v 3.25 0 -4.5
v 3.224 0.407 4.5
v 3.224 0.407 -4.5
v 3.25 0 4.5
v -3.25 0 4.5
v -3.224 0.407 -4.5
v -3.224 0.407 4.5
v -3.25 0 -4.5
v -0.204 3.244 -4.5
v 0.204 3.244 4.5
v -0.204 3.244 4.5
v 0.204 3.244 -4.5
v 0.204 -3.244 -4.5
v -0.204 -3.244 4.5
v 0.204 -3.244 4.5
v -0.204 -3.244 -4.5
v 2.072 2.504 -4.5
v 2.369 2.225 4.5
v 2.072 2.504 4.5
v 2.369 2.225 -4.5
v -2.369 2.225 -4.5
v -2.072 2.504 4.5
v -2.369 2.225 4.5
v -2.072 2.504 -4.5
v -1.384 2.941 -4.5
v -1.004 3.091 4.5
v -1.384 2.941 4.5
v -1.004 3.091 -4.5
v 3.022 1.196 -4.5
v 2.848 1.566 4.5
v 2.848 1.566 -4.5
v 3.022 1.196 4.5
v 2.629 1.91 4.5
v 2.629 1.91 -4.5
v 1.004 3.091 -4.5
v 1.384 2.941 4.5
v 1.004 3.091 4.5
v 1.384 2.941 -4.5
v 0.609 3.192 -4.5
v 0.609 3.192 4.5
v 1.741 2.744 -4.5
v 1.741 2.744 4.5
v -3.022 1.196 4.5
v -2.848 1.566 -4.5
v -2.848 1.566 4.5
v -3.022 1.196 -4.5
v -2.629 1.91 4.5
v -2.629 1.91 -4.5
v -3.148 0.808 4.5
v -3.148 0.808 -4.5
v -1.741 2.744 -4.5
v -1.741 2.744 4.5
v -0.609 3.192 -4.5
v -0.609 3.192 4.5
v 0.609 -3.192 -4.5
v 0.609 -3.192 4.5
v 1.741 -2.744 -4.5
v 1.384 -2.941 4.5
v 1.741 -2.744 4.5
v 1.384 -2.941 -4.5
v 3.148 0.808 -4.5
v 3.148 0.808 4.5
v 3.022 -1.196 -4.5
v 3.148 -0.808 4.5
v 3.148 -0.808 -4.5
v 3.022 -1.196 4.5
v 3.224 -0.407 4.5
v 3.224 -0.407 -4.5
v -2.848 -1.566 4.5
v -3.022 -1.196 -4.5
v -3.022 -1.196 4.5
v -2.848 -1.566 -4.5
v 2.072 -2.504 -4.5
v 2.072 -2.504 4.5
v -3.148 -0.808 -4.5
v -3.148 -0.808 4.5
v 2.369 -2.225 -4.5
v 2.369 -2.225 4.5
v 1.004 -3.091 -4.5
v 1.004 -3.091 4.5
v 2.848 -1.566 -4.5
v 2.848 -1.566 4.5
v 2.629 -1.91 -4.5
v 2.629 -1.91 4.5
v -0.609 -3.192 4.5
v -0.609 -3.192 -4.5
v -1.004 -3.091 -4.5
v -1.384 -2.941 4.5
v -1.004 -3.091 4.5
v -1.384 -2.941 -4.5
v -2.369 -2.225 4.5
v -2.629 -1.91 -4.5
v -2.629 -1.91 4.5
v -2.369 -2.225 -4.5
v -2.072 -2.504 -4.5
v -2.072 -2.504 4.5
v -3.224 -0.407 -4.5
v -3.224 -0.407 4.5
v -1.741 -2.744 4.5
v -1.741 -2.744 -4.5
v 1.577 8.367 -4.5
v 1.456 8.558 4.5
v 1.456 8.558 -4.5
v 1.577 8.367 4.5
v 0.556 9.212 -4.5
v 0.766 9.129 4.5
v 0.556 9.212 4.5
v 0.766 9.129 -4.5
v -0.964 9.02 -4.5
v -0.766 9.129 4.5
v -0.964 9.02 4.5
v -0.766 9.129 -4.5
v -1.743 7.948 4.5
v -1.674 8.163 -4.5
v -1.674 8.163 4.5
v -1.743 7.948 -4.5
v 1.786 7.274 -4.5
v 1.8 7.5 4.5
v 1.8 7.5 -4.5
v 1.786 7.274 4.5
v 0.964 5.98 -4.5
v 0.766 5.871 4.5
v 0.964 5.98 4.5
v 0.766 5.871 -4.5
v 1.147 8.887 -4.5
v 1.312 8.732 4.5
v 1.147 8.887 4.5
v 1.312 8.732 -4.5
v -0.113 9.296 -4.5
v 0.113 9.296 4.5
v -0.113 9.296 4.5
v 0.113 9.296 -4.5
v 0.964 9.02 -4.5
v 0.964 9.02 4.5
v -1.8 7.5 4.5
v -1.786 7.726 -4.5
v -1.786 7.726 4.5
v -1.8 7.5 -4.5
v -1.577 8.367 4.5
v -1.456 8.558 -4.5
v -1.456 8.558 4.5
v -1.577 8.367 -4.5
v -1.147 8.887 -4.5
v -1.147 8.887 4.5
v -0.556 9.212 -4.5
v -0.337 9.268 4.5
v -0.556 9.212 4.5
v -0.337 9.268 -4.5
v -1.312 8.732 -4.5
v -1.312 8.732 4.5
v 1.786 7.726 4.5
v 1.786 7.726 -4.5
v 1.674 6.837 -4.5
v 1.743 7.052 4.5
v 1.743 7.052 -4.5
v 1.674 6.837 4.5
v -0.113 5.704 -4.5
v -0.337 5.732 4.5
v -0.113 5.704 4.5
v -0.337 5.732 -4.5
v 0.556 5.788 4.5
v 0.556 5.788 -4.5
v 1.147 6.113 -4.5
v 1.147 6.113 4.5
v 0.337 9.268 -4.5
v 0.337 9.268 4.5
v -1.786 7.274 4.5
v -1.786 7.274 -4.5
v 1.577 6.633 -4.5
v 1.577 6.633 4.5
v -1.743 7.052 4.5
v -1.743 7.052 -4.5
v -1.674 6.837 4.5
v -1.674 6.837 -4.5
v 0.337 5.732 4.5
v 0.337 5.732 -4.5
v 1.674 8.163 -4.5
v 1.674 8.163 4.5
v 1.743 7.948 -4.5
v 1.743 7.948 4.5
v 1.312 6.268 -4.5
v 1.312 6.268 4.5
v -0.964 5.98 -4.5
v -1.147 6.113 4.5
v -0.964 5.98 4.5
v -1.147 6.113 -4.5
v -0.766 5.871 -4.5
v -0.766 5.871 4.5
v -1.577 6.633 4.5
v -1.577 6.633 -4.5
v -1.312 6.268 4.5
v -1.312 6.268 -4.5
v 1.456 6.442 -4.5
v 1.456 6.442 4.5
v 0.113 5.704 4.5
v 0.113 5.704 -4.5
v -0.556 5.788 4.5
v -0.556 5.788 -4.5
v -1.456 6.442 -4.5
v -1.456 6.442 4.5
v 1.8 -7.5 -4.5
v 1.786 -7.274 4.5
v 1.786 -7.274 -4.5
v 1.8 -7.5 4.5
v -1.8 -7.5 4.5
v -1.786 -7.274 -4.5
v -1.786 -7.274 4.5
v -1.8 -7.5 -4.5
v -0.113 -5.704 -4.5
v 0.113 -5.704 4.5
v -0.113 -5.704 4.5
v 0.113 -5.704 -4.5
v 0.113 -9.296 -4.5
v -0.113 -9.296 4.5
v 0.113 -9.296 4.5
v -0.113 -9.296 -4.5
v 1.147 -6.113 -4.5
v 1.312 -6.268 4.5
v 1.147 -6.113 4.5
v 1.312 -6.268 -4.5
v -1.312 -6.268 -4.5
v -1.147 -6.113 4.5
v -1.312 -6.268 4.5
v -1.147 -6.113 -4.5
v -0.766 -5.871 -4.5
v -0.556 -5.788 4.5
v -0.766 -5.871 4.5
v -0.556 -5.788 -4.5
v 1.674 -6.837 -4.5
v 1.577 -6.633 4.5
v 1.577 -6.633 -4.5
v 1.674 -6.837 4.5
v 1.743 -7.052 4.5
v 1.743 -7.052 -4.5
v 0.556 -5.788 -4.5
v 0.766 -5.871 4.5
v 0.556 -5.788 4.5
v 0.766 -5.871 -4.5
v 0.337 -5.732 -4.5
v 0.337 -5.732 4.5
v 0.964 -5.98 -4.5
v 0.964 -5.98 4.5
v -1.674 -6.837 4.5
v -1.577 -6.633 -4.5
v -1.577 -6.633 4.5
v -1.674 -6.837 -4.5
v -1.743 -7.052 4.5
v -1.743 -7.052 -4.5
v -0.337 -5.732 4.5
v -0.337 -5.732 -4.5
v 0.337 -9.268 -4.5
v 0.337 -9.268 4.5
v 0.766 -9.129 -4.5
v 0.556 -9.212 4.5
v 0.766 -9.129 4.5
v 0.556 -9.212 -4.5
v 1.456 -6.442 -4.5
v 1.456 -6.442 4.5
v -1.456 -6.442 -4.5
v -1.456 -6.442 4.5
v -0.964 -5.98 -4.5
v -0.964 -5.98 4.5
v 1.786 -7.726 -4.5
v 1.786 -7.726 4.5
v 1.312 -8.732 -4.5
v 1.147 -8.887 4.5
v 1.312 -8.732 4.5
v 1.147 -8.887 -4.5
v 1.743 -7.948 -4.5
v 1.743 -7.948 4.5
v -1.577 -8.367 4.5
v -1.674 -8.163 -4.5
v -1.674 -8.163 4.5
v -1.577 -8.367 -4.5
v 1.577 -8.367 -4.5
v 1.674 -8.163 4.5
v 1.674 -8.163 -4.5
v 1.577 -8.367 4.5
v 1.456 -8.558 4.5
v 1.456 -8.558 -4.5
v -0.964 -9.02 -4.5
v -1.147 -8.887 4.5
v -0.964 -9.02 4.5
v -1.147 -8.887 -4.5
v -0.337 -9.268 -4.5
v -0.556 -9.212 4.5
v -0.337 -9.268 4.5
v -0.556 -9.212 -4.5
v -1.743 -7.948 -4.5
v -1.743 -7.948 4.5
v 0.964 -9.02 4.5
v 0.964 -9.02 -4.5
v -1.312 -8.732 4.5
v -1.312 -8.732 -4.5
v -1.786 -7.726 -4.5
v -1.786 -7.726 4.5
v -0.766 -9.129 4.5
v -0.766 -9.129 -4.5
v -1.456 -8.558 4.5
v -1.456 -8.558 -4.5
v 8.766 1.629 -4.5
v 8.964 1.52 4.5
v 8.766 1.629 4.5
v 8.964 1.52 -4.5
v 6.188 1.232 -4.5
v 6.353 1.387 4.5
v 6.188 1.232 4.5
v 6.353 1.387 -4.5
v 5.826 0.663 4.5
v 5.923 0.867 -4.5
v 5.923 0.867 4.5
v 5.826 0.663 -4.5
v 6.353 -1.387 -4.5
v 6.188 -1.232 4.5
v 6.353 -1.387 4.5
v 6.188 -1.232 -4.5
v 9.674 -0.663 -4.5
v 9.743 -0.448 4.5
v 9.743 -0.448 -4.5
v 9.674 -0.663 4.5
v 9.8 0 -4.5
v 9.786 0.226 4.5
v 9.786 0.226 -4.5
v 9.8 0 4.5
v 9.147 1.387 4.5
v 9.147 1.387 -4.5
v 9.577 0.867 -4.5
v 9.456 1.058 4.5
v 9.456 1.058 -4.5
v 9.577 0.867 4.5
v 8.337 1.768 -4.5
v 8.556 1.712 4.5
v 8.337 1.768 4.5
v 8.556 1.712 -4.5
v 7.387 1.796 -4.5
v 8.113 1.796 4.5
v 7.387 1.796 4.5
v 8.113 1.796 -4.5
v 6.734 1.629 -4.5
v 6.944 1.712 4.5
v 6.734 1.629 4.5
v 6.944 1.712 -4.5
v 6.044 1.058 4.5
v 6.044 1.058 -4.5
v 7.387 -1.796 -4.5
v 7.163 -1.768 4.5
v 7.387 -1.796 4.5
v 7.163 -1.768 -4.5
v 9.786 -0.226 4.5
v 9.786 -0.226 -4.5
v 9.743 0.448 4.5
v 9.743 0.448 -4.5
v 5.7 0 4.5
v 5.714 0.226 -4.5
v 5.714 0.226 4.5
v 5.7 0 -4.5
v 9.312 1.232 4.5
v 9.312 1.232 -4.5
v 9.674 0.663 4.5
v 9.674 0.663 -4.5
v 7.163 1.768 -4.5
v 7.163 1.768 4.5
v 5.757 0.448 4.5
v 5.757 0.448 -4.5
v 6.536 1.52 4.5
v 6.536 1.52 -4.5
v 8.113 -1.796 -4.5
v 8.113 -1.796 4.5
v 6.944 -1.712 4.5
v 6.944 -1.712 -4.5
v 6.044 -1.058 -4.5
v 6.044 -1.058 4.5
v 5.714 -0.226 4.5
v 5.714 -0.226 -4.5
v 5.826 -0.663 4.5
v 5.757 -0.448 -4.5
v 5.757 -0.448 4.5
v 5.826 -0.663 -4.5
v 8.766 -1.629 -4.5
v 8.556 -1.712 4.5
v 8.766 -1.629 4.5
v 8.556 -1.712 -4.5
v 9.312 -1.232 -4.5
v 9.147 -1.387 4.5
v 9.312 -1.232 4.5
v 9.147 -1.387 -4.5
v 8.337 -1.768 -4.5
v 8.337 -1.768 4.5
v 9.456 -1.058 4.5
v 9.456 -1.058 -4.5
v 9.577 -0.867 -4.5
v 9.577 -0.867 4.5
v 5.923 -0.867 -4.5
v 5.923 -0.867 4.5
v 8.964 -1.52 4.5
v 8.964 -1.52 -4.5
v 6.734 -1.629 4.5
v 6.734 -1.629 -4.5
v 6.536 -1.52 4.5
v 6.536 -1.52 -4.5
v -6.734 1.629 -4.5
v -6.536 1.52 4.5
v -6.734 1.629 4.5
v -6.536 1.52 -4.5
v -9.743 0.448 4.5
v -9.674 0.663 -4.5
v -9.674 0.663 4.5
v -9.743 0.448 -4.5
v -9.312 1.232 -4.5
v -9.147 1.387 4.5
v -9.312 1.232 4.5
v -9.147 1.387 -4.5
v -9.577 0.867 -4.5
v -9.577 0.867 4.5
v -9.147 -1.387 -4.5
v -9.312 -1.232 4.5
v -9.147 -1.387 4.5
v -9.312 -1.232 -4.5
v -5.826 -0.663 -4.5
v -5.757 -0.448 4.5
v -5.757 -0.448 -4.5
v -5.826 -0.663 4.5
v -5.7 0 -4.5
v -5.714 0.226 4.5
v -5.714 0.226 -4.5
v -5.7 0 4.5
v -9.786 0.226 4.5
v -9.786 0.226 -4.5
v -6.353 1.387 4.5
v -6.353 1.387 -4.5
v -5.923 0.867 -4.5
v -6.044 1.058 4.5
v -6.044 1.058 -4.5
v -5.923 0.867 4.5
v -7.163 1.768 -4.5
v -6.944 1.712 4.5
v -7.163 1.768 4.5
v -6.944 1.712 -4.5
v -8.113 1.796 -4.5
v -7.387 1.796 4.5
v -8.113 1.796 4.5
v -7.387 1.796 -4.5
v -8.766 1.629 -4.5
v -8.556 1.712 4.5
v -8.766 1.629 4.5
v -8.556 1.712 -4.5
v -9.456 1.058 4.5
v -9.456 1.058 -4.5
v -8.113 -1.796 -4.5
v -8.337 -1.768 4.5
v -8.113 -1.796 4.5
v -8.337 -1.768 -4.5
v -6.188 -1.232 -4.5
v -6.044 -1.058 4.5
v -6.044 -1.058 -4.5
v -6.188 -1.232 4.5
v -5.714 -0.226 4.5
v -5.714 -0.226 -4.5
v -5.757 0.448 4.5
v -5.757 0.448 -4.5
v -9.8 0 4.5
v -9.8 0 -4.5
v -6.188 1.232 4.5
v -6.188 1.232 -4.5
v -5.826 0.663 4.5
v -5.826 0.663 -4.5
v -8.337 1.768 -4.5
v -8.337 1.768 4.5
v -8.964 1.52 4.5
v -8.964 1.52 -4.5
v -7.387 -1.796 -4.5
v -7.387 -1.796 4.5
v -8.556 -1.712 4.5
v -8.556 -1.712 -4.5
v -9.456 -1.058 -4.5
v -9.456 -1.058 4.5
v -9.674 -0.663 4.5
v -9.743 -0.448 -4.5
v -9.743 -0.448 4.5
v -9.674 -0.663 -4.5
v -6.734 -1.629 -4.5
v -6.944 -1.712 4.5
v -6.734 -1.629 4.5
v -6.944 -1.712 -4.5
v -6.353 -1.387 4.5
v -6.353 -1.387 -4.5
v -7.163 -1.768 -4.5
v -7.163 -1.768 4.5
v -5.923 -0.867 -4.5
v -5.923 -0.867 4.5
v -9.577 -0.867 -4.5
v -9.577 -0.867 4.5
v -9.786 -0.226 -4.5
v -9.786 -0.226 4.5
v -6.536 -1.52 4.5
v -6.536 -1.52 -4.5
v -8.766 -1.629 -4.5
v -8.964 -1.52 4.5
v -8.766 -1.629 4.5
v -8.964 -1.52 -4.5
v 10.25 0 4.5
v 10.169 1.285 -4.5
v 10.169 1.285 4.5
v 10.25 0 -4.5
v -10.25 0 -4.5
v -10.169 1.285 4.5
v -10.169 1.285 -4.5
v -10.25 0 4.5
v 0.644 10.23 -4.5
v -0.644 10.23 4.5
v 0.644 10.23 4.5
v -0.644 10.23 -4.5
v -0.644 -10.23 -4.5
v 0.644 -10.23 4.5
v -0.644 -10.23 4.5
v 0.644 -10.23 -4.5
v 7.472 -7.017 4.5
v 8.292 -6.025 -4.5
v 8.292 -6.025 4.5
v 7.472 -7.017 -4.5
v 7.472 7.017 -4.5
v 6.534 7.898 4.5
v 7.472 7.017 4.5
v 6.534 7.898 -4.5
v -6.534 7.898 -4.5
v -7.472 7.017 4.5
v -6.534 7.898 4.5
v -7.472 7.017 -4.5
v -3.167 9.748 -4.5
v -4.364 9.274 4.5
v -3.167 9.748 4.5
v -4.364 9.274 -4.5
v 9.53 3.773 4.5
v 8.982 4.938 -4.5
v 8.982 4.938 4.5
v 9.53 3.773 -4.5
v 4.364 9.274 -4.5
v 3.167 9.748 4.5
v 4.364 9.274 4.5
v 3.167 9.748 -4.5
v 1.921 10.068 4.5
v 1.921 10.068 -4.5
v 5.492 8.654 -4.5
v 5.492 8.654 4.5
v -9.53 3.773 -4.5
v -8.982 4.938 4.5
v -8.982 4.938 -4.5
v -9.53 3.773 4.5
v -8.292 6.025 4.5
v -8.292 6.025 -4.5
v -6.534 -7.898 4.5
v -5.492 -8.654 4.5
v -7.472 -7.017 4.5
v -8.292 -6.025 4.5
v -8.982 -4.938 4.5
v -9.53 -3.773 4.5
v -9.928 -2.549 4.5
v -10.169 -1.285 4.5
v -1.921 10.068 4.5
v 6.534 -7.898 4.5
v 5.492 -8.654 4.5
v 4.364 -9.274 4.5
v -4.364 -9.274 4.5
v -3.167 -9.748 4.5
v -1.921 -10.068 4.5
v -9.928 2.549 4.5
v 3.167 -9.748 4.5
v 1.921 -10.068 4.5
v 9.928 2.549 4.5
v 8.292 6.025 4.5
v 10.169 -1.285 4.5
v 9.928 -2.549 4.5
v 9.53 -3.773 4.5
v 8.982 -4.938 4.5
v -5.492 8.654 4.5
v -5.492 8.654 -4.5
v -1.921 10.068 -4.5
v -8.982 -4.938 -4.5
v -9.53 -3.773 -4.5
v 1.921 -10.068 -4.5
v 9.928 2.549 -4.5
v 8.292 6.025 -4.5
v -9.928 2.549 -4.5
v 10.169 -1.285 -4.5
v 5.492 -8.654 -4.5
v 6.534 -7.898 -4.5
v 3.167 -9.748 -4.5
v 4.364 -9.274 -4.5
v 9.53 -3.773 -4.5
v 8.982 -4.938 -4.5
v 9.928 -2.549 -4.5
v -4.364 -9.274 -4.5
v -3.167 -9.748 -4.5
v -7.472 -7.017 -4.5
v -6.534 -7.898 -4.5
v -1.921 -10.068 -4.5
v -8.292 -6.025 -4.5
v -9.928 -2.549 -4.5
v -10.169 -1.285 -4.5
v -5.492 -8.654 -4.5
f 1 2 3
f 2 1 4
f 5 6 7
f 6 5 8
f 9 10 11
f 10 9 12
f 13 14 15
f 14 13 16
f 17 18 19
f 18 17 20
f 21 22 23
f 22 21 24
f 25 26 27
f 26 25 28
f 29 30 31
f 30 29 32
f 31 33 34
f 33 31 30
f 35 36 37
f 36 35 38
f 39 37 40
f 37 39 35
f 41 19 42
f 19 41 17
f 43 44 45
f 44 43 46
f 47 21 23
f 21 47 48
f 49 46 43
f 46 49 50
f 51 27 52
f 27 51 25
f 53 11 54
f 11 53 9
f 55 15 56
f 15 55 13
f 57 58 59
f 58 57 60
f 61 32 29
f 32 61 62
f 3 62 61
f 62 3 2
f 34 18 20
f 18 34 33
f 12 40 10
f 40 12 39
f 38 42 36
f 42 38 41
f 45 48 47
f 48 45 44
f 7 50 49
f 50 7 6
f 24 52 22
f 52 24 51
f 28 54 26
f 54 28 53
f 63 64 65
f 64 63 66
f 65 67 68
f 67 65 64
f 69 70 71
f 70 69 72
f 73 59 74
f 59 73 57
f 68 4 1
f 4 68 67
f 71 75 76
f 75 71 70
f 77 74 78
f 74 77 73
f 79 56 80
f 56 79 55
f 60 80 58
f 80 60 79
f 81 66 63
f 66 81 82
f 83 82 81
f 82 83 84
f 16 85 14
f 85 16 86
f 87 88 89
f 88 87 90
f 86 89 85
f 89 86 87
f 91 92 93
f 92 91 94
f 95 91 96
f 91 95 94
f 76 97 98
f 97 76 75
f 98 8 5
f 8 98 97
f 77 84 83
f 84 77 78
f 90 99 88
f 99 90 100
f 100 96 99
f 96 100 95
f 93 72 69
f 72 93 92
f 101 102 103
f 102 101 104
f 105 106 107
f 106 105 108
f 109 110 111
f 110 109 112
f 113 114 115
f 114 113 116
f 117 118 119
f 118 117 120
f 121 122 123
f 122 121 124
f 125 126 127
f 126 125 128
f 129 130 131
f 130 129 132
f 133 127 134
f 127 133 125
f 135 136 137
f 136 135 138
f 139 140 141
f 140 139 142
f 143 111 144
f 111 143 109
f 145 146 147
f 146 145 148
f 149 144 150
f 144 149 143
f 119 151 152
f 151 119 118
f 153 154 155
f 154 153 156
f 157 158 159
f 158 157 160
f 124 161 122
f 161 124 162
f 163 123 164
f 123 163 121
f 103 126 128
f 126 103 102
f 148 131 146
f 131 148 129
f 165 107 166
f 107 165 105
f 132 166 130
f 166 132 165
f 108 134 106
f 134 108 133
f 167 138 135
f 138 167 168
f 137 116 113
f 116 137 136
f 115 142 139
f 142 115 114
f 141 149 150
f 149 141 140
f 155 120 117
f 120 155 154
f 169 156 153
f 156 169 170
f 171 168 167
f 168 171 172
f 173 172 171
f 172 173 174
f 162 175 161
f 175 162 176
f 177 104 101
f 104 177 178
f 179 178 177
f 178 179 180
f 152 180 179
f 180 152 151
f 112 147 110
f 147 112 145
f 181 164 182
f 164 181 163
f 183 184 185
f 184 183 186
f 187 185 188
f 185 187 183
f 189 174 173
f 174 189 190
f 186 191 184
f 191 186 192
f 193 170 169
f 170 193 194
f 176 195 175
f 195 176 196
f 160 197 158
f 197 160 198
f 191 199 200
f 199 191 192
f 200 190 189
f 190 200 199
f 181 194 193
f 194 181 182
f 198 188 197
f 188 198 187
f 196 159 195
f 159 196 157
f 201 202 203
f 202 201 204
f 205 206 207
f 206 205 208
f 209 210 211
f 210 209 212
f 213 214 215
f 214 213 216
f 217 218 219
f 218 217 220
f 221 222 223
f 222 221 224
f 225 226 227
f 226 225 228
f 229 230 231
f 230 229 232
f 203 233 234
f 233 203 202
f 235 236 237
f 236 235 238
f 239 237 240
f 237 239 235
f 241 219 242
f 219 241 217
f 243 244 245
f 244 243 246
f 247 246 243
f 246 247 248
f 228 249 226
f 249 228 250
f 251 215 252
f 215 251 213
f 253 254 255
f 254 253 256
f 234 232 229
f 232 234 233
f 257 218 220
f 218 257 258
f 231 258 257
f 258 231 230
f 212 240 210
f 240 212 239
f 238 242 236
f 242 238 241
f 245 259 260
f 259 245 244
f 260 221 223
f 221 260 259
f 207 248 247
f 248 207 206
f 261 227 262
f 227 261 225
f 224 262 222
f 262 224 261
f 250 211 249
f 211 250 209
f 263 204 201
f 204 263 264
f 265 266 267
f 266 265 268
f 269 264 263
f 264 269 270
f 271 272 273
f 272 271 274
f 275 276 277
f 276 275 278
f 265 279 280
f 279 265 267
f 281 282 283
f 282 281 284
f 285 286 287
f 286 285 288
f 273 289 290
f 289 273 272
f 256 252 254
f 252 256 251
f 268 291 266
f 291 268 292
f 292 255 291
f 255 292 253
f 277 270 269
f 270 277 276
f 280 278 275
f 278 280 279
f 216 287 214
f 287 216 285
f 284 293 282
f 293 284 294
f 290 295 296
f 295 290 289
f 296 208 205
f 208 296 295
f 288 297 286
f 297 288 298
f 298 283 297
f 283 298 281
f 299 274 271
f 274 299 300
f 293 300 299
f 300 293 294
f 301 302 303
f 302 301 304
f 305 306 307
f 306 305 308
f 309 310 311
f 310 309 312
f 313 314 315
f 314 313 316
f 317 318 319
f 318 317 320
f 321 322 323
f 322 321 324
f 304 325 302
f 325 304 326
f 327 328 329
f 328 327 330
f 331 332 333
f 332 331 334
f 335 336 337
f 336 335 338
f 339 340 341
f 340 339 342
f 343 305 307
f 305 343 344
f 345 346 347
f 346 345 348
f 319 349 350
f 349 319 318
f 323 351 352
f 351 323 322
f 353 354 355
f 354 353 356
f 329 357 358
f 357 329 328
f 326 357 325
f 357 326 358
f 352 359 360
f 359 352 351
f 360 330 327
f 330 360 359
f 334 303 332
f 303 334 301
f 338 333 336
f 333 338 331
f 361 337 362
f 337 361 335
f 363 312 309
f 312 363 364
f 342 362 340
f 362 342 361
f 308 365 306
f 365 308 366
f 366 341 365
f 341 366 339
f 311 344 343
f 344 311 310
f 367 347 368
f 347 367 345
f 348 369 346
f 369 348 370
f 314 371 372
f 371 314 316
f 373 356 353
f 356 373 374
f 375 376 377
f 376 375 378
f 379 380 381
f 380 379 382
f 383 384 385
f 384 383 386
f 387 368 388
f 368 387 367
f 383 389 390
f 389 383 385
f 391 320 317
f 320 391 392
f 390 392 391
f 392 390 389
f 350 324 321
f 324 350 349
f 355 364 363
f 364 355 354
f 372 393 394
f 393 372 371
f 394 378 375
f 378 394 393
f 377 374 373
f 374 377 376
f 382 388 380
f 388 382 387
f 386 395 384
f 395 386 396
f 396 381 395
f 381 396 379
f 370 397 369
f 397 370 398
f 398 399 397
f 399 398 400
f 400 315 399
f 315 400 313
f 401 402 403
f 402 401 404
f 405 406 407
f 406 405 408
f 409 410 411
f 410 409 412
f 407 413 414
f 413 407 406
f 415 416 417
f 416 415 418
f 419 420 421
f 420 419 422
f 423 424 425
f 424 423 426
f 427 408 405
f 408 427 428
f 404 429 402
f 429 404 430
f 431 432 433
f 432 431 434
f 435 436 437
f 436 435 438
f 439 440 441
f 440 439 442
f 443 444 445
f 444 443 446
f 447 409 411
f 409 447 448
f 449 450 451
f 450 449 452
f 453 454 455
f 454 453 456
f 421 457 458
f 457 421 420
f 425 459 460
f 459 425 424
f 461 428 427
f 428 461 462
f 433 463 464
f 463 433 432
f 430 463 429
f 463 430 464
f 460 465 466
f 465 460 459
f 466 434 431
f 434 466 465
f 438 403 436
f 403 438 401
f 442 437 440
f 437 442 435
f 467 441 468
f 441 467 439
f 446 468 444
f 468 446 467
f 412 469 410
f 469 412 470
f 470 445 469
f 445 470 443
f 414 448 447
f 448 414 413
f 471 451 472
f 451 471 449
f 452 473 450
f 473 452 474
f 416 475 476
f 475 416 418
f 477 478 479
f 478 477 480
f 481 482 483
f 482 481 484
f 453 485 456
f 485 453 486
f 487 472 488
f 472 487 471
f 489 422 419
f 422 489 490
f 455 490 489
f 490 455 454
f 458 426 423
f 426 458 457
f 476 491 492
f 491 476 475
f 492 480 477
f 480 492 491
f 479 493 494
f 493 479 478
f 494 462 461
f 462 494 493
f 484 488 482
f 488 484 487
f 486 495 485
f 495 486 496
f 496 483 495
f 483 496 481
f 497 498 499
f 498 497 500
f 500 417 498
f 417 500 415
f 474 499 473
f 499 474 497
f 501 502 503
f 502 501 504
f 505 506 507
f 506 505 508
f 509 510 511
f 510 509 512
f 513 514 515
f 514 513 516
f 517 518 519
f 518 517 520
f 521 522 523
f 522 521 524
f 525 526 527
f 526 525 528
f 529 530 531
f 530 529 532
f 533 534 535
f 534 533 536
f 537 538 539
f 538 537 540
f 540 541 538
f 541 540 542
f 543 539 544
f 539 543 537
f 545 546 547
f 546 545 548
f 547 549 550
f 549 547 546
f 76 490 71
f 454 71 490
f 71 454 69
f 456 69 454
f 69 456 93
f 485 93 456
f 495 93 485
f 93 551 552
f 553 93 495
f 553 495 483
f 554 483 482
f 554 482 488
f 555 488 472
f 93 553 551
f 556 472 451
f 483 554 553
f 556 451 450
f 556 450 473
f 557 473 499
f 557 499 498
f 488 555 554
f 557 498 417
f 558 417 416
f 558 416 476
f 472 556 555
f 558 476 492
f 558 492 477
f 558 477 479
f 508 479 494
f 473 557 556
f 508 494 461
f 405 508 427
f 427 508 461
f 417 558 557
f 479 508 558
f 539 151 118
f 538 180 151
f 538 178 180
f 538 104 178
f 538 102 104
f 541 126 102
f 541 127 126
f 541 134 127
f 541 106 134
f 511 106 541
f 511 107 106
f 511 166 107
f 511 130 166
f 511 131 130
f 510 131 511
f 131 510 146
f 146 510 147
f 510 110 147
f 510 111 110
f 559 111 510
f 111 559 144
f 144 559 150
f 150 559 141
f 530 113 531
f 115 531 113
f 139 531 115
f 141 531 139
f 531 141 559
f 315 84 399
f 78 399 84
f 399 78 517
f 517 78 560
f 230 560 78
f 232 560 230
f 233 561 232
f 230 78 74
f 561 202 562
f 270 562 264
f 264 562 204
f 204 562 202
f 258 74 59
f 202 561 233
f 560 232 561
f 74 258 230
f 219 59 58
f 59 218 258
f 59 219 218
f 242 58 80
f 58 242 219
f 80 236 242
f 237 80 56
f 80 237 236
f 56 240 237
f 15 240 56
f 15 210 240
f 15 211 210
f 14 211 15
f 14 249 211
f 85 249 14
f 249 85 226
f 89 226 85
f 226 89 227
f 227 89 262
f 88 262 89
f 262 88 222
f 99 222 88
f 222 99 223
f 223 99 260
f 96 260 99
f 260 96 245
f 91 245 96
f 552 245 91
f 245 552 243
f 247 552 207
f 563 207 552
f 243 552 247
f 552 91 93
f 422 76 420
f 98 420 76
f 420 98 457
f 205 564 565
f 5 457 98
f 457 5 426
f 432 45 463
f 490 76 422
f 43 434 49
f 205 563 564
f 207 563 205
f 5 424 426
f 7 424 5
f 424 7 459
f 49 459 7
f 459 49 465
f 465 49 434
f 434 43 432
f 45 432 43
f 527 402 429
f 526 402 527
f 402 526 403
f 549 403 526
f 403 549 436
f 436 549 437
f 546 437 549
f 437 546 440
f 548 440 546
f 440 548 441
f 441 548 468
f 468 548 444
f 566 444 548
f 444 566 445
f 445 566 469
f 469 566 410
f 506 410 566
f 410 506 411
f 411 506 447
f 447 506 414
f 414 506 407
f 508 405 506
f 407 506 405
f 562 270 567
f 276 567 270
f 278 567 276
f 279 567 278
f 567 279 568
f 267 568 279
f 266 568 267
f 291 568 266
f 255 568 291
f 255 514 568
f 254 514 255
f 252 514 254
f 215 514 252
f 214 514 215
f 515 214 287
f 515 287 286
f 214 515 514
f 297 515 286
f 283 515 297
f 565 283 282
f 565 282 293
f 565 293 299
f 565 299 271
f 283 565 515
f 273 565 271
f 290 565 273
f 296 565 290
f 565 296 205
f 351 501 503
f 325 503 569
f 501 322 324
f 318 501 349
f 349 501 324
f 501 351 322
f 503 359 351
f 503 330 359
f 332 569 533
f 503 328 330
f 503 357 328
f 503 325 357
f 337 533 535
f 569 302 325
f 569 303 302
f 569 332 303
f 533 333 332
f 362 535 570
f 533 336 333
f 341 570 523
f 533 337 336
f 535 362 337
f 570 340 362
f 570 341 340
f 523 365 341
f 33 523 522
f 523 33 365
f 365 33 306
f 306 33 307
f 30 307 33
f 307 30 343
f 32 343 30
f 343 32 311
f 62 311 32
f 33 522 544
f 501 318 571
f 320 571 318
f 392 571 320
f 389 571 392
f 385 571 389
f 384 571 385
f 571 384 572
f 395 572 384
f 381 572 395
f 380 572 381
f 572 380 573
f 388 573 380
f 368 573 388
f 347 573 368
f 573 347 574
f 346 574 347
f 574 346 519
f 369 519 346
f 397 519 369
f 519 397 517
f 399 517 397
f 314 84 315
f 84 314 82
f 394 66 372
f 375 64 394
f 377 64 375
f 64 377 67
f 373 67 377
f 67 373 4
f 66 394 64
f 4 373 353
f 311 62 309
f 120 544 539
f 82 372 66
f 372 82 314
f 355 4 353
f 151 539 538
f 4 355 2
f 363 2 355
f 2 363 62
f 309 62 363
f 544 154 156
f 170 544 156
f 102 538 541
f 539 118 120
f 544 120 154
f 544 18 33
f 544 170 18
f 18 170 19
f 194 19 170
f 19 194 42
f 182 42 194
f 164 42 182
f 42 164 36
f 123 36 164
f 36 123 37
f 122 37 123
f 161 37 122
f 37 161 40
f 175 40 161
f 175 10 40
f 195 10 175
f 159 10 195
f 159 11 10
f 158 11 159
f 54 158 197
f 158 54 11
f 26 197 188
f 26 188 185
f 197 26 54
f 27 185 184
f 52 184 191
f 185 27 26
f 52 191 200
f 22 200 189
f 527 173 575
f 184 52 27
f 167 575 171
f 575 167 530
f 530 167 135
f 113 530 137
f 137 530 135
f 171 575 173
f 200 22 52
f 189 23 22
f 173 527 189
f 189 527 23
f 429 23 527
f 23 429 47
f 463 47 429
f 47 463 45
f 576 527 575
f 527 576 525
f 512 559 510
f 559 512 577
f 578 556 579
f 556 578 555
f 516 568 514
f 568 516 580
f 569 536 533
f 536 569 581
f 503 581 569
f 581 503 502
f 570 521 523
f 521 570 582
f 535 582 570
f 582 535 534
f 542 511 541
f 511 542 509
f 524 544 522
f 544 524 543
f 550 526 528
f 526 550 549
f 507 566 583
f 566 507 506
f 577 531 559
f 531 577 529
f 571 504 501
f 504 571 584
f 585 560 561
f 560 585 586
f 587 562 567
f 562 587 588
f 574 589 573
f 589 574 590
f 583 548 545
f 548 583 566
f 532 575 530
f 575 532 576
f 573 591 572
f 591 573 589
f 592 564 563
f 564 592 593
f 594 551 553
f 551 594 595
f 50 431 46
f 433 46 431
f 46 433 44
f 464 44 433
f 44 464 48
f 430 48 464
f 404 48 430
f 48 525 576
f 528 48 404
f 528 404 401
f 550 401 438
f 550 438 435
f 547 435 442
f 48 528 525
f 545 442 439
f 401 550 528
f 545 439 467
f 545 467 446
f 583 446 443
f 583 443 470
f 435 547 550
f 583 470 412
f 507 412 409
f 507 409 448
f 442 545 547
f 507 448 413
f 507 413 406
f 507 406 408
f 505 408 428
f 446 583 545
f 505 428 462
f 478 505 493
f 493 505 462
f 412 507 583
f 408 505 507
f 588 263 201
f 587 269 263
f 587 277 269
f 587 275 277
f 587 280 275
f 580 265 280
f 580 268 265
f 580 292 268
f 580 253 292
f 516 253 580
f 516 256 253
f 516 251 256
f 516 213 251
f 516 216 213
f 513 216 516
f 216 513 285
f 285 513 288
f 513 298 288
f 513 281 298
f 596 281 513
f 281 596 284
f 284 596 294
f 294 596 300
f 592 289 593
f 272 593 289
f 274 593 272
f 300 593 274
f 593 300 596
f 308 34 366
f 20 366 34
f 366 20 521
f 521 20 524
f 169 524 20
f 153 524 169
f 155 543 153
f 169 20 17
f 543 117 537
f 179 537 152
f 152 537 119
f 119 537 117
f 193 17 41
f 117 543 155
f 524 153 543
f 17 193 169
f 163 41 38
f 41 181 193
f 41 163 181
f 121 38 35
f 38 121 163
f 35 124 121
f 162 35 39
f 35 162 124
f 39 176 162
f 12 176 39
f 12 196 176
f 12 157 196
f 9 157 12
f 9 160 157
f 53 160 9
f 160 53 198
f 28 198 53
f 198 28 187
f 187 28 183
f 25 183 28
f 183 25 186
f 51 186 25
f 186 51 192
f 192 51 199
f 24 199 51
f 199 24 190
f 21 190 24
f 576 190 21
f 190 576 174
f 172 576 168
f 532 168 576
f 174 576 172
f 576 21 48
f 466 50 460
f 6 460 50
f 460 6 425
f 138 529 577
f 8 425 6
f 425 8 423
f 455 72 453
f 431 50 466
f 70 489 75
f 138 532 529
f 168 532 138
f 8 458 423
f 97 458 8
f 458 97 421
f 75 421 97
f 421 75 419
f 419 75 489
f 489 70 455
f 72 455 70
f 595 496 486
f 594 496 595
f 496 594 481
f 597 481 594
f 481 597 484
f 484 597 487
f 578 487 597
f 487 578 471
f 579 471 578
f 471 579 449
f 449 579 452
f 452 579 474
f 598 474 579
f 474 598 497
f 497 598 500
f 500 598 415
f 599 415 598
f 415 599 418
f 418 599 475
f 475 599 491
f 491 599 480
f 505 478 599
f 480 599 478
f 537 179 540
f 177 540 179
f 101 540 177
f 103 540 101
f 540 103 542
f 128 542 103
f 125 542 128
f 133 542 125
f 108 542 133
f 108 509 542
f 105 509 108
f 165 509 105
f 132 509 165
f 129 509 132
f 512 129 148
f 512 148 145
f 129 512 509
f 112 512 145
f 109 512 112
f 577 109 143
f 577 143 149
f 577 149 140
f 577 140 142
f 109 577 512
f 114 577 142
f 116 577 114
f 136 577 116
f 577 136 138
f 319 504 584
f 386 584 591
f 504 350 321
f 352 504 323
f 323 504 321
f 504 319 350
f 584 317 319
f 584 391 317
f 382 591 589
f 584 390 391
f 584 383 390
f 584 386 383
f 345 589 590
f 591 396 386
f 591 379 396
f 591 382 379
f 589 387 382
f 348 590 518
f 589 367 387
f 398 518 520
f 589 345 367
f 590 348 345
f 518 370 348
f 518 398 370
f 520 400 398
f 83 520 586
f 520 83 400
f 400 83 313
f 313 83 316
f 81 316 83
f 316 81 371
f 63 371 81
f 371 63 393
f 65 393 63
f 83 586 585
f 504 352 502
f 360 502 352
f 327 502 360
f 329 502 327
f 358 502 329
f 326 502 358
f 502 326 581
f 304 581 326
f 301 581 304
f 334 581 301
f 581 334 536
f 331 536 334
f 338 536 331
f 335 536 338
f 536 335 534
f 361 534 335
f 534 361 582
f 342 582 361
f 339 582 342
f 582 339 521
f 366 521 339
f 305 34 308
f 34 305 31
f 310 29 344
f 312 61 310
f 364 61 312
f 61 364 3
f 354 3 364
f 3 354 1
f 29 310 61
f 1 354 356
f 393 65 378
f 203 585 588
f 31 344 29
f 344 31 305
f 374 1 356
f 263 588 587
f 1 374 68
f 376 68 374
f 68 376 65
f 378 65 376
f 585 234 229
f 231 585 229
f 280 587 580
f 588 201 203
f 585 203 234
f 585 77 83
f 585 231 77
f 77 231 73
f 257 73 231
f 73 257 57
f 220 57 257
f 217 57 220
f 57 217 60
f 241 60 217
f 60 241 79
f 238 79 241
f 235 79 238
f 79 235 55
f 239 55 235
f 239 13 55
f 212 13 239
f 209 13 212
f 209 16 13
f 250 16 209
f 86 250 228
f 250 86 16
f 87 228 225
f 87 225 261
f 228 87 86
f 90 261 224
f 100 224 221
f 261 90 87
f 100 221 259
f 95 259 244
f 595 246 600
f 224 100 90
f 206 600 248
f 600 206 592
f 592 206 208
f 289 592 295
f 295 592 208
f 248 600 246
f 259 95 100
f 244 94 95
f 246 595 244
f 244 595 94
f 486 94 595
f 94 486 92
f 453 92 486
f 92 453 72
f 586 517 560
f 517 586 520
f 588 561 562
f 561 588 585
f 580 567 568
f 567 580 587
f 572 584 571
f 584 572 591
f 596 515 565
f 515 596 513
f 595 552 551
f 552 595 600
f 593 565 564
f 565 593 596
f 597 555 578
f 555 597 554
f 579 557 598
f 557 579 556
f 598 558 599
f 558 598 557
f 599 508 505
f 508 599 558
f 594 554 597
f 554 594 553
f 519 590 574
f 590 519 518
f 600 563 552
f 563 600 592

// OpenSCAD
$fn = 50;


difference() {
	union() {
		translate(v = [0, 0, -4.5000000000]) {
			rotate(a = [0, 0, 0]) {
				cylinder(h = 9, r = 10.2500000000);
			}
		}
	}
	union() {
		translate(v = [0, 0, -125.0000000000]) {
			rotate(a = [0, 0, 0]) {
				cylinder(h = 250, r = 3.2500000000);
			}
		}
		translate(v = [0, 7.5000000000, -125.0000000000]) {
			rotate(a = [0, 0, 0]) {
				cylinder(h = 250, r = 1.8000000000);
			}
		}
		translate(v = [0, -7.5000000000, -125.0000000000]) {
			rotate(a = [0, 0, 0]) {
				cylinder(h = 250, r = 1.8000000000);
			}
		}
		translate(v = [7.7500000000, 0, -125.0000000000]) {
			rotate(a = [0, 0, 0]) {
				hull() {
					translate(v = [0.2500000000, 0, 0]) {
						rotate(a = [0, 0, 0]) {
							translate(v = [0, 0, 0]) {
								rotate(a = [0, 0, 0]) {
									cylinder(h = 250, r = 1.8000000000);
								}
							}
						}
					}
					translate(v = [-0.2500000000, 0, 0]) {
						rotate(a = [0, 0, 0]) {
							translate(v = [0, 0, 0]) {
								rotate(a = [0, 0, 0]) {
									cylinder(h = 250, r = 1.8000000000);
								}
							}
						}
					}
				}
			}
		}
		translate(v = [-7.7500000000, 0, -125.0000000000]) {
			rotate(a = [0, 0, 0]) {
				hull() {
					translate(v = [0.2500000000, 0, 0]) {
						rotate(a = [0, 0, 0]) {
							translate(v = [0, 0, 0]) {
								rotate(a = [0, 0, 0]) {
									cylinder(h = 250, r = 1.8000000000);
								}
							}
						}
					}
					translate(v = [-0.2500000000, 0, 0]) {
						rotate(a = [0, 0, 0]) {
							translate(v = [0, 0, 0]) {
								rotate(a = [0, 0, 0]) {
									cylinder(h = 250, r = 1.8000000000);
								}
							}
						}
					}
				}
			}
		}
	}
}
